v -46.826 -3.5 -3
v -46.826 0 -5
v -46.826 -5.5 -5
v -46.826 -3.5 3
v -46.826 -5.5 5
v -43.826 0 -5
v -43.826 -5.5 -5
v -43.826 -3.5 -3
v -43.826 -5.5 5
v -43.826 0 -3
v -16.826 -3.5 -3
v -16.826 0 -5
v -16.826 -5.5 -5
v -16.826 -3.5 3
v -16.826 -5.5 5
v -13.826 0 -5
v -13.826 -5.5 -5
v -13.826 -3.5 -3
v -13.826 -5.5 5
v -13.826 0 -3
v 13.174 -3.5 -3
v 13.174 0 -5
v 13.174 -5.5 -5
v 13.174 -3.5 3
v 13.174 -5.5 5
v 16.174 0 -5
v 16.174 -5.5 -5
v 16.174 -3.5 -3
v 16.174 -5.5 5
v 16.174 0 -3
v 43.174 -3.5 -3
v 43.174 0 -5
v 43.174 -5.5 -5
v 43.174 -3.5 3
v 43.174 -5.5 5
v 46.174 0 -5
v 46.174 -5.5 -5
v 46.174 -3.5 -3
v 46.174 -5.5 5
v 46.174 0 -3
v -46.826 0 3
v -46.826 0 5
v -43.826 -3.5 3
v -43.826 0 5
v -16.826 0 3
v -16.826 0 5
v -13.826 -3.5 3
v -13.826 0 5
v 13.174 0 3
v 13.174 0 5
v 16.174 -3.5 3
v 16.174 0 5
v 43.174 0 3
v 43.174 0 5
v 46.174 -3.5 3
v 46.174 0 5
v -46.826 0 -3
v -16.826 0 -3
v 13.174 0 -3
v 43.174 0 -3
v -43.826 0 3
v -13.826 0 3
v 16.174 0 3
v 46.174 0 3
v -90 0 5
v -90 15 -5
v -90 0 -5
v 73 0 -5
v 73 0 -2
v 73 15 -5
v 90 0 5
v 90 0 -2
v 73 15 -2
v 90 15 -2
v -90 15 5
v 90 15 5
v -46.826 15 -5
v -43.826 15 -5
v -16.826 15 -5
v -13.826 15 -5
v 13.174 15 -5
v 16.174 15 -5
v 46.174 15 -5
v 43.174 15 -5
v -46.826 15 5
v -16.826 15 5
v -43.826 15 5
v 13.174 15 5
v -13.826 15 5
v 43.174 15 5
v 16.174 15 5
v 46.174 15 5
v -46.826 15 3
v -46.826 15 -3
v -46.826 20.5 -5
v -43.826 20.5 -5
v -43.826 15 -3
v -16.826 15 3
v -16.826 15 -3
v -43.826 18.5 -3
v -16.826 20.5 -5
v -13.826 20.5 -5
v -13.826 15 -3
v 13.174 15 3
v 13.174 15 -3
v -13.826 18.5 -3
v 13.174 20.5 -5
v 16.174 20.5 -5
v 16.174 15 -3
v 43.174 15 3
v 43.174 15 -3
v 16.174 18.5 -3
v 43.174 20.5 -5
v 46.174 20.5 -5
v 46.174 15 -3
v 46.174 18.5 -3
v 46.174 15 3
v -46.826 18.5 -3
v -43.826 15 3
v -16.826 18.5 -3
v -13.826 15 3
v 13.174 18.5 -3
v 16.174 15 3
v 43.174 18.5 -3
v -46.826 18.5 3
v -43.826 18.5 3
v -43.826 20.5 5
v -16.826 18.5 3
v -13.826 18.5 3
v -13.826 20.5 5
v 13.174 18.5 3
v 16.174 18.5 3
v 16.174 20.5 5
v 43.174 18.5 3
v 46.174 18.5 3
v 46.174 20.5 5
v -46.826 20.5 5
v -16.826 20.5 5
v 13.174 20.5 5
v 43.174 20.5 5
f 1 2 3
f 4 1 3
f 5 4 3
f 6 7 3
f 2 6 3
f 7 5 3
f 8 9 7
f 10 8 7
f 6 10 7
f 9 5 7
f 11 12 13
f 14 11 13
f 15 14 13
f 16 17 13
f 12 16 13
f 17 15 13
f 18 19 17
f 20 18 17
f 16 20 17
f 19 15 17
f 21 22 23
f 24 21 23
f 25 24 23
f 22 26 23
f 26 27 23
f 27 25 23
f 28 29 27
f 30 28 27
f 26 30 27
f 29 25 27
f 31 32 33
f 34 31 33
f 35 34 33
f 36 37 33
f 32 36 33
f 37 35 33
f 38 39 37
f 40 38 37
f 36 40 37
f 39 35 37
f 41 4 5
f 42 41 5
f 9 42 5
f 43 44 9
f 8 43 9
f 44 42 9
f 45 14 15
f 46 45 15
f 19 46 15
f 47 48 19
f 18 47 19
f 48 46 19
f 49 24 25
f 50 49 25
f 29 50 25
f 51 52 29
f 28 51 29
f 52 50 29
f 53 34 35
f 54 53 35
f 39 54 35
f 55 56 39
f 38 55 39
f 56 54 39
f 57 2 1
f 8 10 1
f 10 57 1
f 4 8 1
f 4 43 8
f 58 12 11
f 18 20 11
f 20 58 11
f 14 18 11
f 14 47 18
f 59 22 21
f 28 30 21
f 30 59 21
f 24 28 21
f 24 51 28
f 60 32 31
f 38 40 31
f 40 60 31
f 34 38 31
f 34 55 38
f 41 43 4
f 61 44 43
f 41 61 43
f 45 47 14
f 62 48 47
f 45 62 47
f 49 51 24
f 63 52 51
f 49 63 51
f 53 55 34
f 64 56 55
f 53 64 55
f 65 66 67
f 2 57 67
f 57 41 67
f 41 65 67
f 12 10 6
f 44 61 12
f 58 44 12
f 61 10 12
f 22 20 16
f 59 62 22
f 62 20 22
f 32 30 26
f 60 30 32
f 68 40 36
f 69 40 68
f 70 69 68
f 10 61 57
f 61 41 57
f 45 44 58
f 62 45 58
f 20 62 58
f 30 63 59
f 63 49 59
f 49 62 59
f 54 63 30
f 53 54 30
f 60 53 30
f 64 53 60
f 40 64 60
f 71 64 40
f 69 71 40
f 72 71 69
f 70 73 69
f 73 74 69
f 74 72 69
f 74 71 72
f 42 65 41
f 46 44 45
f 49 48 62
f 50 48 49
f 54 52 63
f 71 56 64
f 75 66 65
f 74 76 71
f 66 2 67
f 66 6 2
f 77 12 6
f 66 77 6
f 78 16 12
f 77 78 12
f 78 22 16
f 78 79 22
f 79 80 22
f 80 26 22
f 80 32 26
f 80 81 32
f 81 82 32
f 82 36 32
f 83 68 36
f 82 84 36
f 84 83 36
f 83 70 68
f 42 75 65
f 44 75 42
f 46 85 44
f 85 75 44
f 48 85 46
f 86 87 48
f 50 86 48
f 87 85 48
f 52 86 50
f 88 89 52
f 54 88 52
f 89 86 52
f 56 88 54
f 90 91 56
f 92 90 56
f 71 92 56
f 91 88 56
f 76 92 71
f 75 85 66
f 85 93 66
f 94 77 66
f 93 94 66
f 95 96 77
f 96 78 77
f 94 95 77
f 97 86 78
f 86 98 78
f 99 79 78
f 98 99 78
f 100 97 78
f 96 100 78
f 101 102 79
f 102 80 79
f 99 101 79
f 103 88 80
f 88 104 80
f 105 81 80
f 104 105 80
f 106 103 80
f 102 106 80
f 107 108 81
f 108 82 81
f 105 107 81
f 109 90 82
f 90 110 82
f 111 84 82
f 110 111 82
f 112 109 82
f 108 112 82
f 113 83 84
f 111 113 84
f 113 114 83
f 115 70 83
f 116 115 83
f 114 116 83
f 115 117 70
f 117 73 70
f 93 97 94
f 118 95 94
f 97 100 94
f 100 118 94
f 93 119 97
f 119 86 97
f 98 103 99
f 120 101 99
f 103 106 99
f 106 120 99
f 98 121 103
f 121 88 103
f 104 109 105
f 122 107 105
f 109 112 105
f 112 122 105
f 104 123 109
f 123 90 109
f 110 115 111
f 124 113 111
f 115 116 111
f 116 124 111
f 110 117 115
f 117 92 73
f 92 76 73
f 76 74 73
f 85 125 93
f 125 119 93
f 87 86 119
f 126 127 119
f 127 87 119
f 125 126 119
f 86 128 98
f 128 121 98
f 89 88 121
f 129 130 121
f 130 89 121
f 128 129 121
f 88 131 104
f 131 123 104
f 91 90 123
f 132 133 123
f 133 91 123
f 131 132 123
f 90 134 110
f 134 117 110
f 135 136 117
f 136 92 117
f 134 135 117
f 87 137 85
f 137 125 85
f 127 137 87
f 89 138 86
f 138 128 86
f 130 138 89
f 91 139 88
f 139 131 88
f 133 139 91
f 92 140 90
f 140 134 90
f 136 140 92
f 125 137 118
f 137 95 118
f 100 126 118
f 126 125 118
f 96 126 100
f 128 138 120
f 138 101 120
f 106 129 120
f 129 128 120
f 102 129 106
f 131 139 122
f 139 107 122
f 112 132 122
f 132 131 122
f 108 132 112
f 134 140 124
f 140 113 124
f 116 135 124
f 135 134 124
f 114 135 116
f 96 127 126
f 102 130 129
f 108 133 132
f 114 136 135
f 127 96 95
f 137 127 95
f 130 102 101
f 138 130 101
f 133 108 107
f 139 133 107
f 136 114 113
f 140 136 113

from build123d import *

# Parameters (mm, degrees)
SKETCH1_W               = 180
SKETCH1_H               = 10
BOSS_EXTRUDE1_DEPTH     = 15
SKETCH2_W               = 17
SKETCH2_H               = 15
CUT_EXTRUDE1_DEPTH      = 3
SKETCH3_W               = 3
SKETCH3_H               = 10
BOSS_EXTRUDE2_DEPTH     = 5.5
SKETCH4_W               = 6
SKETCH4_H               = 3.5
CUT_EXTRUDE2_DEPTH      = 7
LPATTERN1_COUNT         = 4
LPATTERN1_PITCH         = 30
MIRROR1_COPY_1_SKETCH_W = 3
MIRROR1_COPY_1_SKETCH_H = 10
MIRROR1_COPY_1_DEPTH    = 5.5
MIRROR1_COPY_2_SKETCH_W = 3
MIRROR1_COPY_2_SKETCH_H = 10
MIRROR1_COPY_2_DEPTH    = 5.5
MIRROR1_COPY_3_SKETCH_W = 3
MIRROR1_COPY_3_SKETCH_H = 10
MIRROR1_COPY_3_DEPTH    = 5.5
MIRROR1_COPY_4_SKETCH_W = 6
MIRROR1_COPY_4_SKETCH_H = 3.5
MIRROR1_COPY_4_DEPTH    = 7
MIRROR1_COPY_5_SKETCH_W = 6
MIRROR1_COPY_5_SKETCH_H = 3.5
MIRROR1_COPY_5_DEPTH    = 7
MIRROR1_COPY_6_SKETCH_W = 6
MIRROR1_COPY_6_SKETCH_H = 3.5
MIRROR1_COPY_6_DEPTH    = 7


with BuildPart() as part:
    # Sketch1 → Boss-Extrude1 (new body)
    with BuildSketch(Plane(origin=(0, 0, 0), x_dir=(1, 0, 0), z_dir=(0, 1, 0))):
        Rectangle(SKETCH1_W, SKETCH1_H)
    extrude(amount=BOSS_EXTRUDE1_DEPTH)

    # Sketch2 → Cut-Extrude1 (cut)
    with BuildSketch(Plane(origin=(0, 0, -5), x_dir=(-1, 0, 0), z_dir=(0, 0, -1))):
        with Locations((-81.5, 7.5)):
            Rectangle(SKETCH2_W, SKETCH2_H)
    extrude(amount=-CUT_EXTRUDE1_DEPTH, mode=Mode.SUBTRACT)

    # Sketch3 → Boss-Extrude2 (add)
    with BuildSketch(Plane(origin=(0, 15, 0), x_dir=(1, 0, 0), z_dir=(0, 1, 0))):
        with Locations((44.673610622, 0)):
            Rectangle(SKETCH3_W, SKETCH3_H)
    boss_extrude2 = extrude(amount=BOSS_EXTRUDE2_DEPTH)

    # Sketch4 → Cut-Extrude2 (cut)
    with BuildSketch(Plane(origin=(46.173610622, 0, 0), x_dir=(0, 0, -1), z_dir=(1, 0, 0))):
        with Locations((0, 16.75)):
            Rectangle(SKETCH4_W, SKETCH4_H)
    cut_extrude2 = extrude(amount=-CUT_EXTRUDE2_DEPTH, mode=Mode.SUBTRACT)

    # LPattern1: Boss-Extrude2, Cut-Extrude2 ×4
    with Locations(*[(-i * LPATTERN1_PITCH, 0, 0) for i in range(1, LPATTERN1_COUNT)]):
        add(boss_extrude2)
        add(cut_extrude2, mode=Mode.SUBTRACT)

    # Mirror1: Boss-Extrude2, Cut-Extrude2 across plane
    add(boss_extrude2.mirror(Plane(origin=(0, 7.5, 0), x_dir=(0, 0, 1), z_dir=(0, -1, 0))))
    add(cut_extrude2.mirror(Plane(origin=(0, 7.5, 0), x_dir=(0, 0, 1), z_dir=(0, -1, 0))), mode=Mode.SUBTRACT)

    # Mirror1 copy 1 sketch → Mirror1 copy 1 (add)
    with BuildSketch(Plane(origin=(-30, 0, 0), x_dir=(1, 0, 0), z_dir=(0, -1, 0))):
        with Locations((44.673610622, 0)):
            Rectangle(MIRROR1_COPY_1_SKETCH_W, MIRROR1_COPY_1_SKETCH_H)
    extrude(amount=MIRROR1_COPY_1_DEPTH)

    # Mirror1 copy 2 sketch → Mirror1 copy 2 (add)
    with BuildSketch(Plane(origin=(-60, 0, 0), x_dir=(1, 0, 0), z_dir=(0, -1, 0))):
        with Locations((44.673610622, 0)):
            Rectangle(MIRROR1_COPY_2_SKETCH_W, MIRROR1_COPY_2_SKETCH_H)
    extrude(amount=MIRROR1_COPY_2_DEPTH)

    # Mirror1 copy 3 sketch → Mirror1 copy 3 (add)
    with BuildSketch(Plane(origin=(-90, 0, 0), x_dir=(1, 0, 0), z_dir=(0, -1, 0))):
        with Locations((44.673610622, 0)):
            Rectangle(MIRROR1_COPY_3_SKETCH_W, MIRROR1_COPY_3_SKETCH_H)
    extrude(amount=MIRROR1_COPY_3_DEPTH)

    # Mirror1 copy 4 sketch → Mirror1 copy 4 (cut)
    with BuildSketch(Plane(origin=(16.173610622, 15, 0), x_dir=(0, 0, -1), z_dir=(1, 0, 0))):
        with Locations((0, -16.75)):
            Rectangle(MIRROR1_COPY_4_SKETCH_W, MIRROR1_COPY_4_SKETCH_H)
    extrude(amount=-MIRROR1_COPY_4_DEPTH, mode=Mode.SUBTRACT)

    # Mirror1 copy 5 sketch → Mirror1 copy 5 (cut)
    with BuildSketch(Plane(origin=(-13.826389378, 15, 0), x_dir=(0, 0, -1), z_dir=(1, 0, 0))):
        with Locations((0, -16.75)):
            Rectangle(MIRROR1_COPY_5_SKETCH_W, MIRROR1_COPY_5_SKETCH_H)
    extrude(amount=-MIRROR1_COPY_5_DEPTH, mode=Mode.SUBTRACT)

    # Mirror1 copy 6 sketch → Mirror1 copy 6 (cut)
    with BuildSketch(Plane(origin=(-43.826389378, 15, 0), x_dir=(0, 0, -1), z_dir=(1, 0, 0))):
        with Locations((0, -16.75)):
            Rectangle(MIRROR1_COPY_6_SKETCH_W, MIRROR1_COPY_6_SKETCH_H)
    extrude(amount=-MIRROR1_COPY_6_DEPTH, mode=Mode.SUBTRACT)


solid = part.part
